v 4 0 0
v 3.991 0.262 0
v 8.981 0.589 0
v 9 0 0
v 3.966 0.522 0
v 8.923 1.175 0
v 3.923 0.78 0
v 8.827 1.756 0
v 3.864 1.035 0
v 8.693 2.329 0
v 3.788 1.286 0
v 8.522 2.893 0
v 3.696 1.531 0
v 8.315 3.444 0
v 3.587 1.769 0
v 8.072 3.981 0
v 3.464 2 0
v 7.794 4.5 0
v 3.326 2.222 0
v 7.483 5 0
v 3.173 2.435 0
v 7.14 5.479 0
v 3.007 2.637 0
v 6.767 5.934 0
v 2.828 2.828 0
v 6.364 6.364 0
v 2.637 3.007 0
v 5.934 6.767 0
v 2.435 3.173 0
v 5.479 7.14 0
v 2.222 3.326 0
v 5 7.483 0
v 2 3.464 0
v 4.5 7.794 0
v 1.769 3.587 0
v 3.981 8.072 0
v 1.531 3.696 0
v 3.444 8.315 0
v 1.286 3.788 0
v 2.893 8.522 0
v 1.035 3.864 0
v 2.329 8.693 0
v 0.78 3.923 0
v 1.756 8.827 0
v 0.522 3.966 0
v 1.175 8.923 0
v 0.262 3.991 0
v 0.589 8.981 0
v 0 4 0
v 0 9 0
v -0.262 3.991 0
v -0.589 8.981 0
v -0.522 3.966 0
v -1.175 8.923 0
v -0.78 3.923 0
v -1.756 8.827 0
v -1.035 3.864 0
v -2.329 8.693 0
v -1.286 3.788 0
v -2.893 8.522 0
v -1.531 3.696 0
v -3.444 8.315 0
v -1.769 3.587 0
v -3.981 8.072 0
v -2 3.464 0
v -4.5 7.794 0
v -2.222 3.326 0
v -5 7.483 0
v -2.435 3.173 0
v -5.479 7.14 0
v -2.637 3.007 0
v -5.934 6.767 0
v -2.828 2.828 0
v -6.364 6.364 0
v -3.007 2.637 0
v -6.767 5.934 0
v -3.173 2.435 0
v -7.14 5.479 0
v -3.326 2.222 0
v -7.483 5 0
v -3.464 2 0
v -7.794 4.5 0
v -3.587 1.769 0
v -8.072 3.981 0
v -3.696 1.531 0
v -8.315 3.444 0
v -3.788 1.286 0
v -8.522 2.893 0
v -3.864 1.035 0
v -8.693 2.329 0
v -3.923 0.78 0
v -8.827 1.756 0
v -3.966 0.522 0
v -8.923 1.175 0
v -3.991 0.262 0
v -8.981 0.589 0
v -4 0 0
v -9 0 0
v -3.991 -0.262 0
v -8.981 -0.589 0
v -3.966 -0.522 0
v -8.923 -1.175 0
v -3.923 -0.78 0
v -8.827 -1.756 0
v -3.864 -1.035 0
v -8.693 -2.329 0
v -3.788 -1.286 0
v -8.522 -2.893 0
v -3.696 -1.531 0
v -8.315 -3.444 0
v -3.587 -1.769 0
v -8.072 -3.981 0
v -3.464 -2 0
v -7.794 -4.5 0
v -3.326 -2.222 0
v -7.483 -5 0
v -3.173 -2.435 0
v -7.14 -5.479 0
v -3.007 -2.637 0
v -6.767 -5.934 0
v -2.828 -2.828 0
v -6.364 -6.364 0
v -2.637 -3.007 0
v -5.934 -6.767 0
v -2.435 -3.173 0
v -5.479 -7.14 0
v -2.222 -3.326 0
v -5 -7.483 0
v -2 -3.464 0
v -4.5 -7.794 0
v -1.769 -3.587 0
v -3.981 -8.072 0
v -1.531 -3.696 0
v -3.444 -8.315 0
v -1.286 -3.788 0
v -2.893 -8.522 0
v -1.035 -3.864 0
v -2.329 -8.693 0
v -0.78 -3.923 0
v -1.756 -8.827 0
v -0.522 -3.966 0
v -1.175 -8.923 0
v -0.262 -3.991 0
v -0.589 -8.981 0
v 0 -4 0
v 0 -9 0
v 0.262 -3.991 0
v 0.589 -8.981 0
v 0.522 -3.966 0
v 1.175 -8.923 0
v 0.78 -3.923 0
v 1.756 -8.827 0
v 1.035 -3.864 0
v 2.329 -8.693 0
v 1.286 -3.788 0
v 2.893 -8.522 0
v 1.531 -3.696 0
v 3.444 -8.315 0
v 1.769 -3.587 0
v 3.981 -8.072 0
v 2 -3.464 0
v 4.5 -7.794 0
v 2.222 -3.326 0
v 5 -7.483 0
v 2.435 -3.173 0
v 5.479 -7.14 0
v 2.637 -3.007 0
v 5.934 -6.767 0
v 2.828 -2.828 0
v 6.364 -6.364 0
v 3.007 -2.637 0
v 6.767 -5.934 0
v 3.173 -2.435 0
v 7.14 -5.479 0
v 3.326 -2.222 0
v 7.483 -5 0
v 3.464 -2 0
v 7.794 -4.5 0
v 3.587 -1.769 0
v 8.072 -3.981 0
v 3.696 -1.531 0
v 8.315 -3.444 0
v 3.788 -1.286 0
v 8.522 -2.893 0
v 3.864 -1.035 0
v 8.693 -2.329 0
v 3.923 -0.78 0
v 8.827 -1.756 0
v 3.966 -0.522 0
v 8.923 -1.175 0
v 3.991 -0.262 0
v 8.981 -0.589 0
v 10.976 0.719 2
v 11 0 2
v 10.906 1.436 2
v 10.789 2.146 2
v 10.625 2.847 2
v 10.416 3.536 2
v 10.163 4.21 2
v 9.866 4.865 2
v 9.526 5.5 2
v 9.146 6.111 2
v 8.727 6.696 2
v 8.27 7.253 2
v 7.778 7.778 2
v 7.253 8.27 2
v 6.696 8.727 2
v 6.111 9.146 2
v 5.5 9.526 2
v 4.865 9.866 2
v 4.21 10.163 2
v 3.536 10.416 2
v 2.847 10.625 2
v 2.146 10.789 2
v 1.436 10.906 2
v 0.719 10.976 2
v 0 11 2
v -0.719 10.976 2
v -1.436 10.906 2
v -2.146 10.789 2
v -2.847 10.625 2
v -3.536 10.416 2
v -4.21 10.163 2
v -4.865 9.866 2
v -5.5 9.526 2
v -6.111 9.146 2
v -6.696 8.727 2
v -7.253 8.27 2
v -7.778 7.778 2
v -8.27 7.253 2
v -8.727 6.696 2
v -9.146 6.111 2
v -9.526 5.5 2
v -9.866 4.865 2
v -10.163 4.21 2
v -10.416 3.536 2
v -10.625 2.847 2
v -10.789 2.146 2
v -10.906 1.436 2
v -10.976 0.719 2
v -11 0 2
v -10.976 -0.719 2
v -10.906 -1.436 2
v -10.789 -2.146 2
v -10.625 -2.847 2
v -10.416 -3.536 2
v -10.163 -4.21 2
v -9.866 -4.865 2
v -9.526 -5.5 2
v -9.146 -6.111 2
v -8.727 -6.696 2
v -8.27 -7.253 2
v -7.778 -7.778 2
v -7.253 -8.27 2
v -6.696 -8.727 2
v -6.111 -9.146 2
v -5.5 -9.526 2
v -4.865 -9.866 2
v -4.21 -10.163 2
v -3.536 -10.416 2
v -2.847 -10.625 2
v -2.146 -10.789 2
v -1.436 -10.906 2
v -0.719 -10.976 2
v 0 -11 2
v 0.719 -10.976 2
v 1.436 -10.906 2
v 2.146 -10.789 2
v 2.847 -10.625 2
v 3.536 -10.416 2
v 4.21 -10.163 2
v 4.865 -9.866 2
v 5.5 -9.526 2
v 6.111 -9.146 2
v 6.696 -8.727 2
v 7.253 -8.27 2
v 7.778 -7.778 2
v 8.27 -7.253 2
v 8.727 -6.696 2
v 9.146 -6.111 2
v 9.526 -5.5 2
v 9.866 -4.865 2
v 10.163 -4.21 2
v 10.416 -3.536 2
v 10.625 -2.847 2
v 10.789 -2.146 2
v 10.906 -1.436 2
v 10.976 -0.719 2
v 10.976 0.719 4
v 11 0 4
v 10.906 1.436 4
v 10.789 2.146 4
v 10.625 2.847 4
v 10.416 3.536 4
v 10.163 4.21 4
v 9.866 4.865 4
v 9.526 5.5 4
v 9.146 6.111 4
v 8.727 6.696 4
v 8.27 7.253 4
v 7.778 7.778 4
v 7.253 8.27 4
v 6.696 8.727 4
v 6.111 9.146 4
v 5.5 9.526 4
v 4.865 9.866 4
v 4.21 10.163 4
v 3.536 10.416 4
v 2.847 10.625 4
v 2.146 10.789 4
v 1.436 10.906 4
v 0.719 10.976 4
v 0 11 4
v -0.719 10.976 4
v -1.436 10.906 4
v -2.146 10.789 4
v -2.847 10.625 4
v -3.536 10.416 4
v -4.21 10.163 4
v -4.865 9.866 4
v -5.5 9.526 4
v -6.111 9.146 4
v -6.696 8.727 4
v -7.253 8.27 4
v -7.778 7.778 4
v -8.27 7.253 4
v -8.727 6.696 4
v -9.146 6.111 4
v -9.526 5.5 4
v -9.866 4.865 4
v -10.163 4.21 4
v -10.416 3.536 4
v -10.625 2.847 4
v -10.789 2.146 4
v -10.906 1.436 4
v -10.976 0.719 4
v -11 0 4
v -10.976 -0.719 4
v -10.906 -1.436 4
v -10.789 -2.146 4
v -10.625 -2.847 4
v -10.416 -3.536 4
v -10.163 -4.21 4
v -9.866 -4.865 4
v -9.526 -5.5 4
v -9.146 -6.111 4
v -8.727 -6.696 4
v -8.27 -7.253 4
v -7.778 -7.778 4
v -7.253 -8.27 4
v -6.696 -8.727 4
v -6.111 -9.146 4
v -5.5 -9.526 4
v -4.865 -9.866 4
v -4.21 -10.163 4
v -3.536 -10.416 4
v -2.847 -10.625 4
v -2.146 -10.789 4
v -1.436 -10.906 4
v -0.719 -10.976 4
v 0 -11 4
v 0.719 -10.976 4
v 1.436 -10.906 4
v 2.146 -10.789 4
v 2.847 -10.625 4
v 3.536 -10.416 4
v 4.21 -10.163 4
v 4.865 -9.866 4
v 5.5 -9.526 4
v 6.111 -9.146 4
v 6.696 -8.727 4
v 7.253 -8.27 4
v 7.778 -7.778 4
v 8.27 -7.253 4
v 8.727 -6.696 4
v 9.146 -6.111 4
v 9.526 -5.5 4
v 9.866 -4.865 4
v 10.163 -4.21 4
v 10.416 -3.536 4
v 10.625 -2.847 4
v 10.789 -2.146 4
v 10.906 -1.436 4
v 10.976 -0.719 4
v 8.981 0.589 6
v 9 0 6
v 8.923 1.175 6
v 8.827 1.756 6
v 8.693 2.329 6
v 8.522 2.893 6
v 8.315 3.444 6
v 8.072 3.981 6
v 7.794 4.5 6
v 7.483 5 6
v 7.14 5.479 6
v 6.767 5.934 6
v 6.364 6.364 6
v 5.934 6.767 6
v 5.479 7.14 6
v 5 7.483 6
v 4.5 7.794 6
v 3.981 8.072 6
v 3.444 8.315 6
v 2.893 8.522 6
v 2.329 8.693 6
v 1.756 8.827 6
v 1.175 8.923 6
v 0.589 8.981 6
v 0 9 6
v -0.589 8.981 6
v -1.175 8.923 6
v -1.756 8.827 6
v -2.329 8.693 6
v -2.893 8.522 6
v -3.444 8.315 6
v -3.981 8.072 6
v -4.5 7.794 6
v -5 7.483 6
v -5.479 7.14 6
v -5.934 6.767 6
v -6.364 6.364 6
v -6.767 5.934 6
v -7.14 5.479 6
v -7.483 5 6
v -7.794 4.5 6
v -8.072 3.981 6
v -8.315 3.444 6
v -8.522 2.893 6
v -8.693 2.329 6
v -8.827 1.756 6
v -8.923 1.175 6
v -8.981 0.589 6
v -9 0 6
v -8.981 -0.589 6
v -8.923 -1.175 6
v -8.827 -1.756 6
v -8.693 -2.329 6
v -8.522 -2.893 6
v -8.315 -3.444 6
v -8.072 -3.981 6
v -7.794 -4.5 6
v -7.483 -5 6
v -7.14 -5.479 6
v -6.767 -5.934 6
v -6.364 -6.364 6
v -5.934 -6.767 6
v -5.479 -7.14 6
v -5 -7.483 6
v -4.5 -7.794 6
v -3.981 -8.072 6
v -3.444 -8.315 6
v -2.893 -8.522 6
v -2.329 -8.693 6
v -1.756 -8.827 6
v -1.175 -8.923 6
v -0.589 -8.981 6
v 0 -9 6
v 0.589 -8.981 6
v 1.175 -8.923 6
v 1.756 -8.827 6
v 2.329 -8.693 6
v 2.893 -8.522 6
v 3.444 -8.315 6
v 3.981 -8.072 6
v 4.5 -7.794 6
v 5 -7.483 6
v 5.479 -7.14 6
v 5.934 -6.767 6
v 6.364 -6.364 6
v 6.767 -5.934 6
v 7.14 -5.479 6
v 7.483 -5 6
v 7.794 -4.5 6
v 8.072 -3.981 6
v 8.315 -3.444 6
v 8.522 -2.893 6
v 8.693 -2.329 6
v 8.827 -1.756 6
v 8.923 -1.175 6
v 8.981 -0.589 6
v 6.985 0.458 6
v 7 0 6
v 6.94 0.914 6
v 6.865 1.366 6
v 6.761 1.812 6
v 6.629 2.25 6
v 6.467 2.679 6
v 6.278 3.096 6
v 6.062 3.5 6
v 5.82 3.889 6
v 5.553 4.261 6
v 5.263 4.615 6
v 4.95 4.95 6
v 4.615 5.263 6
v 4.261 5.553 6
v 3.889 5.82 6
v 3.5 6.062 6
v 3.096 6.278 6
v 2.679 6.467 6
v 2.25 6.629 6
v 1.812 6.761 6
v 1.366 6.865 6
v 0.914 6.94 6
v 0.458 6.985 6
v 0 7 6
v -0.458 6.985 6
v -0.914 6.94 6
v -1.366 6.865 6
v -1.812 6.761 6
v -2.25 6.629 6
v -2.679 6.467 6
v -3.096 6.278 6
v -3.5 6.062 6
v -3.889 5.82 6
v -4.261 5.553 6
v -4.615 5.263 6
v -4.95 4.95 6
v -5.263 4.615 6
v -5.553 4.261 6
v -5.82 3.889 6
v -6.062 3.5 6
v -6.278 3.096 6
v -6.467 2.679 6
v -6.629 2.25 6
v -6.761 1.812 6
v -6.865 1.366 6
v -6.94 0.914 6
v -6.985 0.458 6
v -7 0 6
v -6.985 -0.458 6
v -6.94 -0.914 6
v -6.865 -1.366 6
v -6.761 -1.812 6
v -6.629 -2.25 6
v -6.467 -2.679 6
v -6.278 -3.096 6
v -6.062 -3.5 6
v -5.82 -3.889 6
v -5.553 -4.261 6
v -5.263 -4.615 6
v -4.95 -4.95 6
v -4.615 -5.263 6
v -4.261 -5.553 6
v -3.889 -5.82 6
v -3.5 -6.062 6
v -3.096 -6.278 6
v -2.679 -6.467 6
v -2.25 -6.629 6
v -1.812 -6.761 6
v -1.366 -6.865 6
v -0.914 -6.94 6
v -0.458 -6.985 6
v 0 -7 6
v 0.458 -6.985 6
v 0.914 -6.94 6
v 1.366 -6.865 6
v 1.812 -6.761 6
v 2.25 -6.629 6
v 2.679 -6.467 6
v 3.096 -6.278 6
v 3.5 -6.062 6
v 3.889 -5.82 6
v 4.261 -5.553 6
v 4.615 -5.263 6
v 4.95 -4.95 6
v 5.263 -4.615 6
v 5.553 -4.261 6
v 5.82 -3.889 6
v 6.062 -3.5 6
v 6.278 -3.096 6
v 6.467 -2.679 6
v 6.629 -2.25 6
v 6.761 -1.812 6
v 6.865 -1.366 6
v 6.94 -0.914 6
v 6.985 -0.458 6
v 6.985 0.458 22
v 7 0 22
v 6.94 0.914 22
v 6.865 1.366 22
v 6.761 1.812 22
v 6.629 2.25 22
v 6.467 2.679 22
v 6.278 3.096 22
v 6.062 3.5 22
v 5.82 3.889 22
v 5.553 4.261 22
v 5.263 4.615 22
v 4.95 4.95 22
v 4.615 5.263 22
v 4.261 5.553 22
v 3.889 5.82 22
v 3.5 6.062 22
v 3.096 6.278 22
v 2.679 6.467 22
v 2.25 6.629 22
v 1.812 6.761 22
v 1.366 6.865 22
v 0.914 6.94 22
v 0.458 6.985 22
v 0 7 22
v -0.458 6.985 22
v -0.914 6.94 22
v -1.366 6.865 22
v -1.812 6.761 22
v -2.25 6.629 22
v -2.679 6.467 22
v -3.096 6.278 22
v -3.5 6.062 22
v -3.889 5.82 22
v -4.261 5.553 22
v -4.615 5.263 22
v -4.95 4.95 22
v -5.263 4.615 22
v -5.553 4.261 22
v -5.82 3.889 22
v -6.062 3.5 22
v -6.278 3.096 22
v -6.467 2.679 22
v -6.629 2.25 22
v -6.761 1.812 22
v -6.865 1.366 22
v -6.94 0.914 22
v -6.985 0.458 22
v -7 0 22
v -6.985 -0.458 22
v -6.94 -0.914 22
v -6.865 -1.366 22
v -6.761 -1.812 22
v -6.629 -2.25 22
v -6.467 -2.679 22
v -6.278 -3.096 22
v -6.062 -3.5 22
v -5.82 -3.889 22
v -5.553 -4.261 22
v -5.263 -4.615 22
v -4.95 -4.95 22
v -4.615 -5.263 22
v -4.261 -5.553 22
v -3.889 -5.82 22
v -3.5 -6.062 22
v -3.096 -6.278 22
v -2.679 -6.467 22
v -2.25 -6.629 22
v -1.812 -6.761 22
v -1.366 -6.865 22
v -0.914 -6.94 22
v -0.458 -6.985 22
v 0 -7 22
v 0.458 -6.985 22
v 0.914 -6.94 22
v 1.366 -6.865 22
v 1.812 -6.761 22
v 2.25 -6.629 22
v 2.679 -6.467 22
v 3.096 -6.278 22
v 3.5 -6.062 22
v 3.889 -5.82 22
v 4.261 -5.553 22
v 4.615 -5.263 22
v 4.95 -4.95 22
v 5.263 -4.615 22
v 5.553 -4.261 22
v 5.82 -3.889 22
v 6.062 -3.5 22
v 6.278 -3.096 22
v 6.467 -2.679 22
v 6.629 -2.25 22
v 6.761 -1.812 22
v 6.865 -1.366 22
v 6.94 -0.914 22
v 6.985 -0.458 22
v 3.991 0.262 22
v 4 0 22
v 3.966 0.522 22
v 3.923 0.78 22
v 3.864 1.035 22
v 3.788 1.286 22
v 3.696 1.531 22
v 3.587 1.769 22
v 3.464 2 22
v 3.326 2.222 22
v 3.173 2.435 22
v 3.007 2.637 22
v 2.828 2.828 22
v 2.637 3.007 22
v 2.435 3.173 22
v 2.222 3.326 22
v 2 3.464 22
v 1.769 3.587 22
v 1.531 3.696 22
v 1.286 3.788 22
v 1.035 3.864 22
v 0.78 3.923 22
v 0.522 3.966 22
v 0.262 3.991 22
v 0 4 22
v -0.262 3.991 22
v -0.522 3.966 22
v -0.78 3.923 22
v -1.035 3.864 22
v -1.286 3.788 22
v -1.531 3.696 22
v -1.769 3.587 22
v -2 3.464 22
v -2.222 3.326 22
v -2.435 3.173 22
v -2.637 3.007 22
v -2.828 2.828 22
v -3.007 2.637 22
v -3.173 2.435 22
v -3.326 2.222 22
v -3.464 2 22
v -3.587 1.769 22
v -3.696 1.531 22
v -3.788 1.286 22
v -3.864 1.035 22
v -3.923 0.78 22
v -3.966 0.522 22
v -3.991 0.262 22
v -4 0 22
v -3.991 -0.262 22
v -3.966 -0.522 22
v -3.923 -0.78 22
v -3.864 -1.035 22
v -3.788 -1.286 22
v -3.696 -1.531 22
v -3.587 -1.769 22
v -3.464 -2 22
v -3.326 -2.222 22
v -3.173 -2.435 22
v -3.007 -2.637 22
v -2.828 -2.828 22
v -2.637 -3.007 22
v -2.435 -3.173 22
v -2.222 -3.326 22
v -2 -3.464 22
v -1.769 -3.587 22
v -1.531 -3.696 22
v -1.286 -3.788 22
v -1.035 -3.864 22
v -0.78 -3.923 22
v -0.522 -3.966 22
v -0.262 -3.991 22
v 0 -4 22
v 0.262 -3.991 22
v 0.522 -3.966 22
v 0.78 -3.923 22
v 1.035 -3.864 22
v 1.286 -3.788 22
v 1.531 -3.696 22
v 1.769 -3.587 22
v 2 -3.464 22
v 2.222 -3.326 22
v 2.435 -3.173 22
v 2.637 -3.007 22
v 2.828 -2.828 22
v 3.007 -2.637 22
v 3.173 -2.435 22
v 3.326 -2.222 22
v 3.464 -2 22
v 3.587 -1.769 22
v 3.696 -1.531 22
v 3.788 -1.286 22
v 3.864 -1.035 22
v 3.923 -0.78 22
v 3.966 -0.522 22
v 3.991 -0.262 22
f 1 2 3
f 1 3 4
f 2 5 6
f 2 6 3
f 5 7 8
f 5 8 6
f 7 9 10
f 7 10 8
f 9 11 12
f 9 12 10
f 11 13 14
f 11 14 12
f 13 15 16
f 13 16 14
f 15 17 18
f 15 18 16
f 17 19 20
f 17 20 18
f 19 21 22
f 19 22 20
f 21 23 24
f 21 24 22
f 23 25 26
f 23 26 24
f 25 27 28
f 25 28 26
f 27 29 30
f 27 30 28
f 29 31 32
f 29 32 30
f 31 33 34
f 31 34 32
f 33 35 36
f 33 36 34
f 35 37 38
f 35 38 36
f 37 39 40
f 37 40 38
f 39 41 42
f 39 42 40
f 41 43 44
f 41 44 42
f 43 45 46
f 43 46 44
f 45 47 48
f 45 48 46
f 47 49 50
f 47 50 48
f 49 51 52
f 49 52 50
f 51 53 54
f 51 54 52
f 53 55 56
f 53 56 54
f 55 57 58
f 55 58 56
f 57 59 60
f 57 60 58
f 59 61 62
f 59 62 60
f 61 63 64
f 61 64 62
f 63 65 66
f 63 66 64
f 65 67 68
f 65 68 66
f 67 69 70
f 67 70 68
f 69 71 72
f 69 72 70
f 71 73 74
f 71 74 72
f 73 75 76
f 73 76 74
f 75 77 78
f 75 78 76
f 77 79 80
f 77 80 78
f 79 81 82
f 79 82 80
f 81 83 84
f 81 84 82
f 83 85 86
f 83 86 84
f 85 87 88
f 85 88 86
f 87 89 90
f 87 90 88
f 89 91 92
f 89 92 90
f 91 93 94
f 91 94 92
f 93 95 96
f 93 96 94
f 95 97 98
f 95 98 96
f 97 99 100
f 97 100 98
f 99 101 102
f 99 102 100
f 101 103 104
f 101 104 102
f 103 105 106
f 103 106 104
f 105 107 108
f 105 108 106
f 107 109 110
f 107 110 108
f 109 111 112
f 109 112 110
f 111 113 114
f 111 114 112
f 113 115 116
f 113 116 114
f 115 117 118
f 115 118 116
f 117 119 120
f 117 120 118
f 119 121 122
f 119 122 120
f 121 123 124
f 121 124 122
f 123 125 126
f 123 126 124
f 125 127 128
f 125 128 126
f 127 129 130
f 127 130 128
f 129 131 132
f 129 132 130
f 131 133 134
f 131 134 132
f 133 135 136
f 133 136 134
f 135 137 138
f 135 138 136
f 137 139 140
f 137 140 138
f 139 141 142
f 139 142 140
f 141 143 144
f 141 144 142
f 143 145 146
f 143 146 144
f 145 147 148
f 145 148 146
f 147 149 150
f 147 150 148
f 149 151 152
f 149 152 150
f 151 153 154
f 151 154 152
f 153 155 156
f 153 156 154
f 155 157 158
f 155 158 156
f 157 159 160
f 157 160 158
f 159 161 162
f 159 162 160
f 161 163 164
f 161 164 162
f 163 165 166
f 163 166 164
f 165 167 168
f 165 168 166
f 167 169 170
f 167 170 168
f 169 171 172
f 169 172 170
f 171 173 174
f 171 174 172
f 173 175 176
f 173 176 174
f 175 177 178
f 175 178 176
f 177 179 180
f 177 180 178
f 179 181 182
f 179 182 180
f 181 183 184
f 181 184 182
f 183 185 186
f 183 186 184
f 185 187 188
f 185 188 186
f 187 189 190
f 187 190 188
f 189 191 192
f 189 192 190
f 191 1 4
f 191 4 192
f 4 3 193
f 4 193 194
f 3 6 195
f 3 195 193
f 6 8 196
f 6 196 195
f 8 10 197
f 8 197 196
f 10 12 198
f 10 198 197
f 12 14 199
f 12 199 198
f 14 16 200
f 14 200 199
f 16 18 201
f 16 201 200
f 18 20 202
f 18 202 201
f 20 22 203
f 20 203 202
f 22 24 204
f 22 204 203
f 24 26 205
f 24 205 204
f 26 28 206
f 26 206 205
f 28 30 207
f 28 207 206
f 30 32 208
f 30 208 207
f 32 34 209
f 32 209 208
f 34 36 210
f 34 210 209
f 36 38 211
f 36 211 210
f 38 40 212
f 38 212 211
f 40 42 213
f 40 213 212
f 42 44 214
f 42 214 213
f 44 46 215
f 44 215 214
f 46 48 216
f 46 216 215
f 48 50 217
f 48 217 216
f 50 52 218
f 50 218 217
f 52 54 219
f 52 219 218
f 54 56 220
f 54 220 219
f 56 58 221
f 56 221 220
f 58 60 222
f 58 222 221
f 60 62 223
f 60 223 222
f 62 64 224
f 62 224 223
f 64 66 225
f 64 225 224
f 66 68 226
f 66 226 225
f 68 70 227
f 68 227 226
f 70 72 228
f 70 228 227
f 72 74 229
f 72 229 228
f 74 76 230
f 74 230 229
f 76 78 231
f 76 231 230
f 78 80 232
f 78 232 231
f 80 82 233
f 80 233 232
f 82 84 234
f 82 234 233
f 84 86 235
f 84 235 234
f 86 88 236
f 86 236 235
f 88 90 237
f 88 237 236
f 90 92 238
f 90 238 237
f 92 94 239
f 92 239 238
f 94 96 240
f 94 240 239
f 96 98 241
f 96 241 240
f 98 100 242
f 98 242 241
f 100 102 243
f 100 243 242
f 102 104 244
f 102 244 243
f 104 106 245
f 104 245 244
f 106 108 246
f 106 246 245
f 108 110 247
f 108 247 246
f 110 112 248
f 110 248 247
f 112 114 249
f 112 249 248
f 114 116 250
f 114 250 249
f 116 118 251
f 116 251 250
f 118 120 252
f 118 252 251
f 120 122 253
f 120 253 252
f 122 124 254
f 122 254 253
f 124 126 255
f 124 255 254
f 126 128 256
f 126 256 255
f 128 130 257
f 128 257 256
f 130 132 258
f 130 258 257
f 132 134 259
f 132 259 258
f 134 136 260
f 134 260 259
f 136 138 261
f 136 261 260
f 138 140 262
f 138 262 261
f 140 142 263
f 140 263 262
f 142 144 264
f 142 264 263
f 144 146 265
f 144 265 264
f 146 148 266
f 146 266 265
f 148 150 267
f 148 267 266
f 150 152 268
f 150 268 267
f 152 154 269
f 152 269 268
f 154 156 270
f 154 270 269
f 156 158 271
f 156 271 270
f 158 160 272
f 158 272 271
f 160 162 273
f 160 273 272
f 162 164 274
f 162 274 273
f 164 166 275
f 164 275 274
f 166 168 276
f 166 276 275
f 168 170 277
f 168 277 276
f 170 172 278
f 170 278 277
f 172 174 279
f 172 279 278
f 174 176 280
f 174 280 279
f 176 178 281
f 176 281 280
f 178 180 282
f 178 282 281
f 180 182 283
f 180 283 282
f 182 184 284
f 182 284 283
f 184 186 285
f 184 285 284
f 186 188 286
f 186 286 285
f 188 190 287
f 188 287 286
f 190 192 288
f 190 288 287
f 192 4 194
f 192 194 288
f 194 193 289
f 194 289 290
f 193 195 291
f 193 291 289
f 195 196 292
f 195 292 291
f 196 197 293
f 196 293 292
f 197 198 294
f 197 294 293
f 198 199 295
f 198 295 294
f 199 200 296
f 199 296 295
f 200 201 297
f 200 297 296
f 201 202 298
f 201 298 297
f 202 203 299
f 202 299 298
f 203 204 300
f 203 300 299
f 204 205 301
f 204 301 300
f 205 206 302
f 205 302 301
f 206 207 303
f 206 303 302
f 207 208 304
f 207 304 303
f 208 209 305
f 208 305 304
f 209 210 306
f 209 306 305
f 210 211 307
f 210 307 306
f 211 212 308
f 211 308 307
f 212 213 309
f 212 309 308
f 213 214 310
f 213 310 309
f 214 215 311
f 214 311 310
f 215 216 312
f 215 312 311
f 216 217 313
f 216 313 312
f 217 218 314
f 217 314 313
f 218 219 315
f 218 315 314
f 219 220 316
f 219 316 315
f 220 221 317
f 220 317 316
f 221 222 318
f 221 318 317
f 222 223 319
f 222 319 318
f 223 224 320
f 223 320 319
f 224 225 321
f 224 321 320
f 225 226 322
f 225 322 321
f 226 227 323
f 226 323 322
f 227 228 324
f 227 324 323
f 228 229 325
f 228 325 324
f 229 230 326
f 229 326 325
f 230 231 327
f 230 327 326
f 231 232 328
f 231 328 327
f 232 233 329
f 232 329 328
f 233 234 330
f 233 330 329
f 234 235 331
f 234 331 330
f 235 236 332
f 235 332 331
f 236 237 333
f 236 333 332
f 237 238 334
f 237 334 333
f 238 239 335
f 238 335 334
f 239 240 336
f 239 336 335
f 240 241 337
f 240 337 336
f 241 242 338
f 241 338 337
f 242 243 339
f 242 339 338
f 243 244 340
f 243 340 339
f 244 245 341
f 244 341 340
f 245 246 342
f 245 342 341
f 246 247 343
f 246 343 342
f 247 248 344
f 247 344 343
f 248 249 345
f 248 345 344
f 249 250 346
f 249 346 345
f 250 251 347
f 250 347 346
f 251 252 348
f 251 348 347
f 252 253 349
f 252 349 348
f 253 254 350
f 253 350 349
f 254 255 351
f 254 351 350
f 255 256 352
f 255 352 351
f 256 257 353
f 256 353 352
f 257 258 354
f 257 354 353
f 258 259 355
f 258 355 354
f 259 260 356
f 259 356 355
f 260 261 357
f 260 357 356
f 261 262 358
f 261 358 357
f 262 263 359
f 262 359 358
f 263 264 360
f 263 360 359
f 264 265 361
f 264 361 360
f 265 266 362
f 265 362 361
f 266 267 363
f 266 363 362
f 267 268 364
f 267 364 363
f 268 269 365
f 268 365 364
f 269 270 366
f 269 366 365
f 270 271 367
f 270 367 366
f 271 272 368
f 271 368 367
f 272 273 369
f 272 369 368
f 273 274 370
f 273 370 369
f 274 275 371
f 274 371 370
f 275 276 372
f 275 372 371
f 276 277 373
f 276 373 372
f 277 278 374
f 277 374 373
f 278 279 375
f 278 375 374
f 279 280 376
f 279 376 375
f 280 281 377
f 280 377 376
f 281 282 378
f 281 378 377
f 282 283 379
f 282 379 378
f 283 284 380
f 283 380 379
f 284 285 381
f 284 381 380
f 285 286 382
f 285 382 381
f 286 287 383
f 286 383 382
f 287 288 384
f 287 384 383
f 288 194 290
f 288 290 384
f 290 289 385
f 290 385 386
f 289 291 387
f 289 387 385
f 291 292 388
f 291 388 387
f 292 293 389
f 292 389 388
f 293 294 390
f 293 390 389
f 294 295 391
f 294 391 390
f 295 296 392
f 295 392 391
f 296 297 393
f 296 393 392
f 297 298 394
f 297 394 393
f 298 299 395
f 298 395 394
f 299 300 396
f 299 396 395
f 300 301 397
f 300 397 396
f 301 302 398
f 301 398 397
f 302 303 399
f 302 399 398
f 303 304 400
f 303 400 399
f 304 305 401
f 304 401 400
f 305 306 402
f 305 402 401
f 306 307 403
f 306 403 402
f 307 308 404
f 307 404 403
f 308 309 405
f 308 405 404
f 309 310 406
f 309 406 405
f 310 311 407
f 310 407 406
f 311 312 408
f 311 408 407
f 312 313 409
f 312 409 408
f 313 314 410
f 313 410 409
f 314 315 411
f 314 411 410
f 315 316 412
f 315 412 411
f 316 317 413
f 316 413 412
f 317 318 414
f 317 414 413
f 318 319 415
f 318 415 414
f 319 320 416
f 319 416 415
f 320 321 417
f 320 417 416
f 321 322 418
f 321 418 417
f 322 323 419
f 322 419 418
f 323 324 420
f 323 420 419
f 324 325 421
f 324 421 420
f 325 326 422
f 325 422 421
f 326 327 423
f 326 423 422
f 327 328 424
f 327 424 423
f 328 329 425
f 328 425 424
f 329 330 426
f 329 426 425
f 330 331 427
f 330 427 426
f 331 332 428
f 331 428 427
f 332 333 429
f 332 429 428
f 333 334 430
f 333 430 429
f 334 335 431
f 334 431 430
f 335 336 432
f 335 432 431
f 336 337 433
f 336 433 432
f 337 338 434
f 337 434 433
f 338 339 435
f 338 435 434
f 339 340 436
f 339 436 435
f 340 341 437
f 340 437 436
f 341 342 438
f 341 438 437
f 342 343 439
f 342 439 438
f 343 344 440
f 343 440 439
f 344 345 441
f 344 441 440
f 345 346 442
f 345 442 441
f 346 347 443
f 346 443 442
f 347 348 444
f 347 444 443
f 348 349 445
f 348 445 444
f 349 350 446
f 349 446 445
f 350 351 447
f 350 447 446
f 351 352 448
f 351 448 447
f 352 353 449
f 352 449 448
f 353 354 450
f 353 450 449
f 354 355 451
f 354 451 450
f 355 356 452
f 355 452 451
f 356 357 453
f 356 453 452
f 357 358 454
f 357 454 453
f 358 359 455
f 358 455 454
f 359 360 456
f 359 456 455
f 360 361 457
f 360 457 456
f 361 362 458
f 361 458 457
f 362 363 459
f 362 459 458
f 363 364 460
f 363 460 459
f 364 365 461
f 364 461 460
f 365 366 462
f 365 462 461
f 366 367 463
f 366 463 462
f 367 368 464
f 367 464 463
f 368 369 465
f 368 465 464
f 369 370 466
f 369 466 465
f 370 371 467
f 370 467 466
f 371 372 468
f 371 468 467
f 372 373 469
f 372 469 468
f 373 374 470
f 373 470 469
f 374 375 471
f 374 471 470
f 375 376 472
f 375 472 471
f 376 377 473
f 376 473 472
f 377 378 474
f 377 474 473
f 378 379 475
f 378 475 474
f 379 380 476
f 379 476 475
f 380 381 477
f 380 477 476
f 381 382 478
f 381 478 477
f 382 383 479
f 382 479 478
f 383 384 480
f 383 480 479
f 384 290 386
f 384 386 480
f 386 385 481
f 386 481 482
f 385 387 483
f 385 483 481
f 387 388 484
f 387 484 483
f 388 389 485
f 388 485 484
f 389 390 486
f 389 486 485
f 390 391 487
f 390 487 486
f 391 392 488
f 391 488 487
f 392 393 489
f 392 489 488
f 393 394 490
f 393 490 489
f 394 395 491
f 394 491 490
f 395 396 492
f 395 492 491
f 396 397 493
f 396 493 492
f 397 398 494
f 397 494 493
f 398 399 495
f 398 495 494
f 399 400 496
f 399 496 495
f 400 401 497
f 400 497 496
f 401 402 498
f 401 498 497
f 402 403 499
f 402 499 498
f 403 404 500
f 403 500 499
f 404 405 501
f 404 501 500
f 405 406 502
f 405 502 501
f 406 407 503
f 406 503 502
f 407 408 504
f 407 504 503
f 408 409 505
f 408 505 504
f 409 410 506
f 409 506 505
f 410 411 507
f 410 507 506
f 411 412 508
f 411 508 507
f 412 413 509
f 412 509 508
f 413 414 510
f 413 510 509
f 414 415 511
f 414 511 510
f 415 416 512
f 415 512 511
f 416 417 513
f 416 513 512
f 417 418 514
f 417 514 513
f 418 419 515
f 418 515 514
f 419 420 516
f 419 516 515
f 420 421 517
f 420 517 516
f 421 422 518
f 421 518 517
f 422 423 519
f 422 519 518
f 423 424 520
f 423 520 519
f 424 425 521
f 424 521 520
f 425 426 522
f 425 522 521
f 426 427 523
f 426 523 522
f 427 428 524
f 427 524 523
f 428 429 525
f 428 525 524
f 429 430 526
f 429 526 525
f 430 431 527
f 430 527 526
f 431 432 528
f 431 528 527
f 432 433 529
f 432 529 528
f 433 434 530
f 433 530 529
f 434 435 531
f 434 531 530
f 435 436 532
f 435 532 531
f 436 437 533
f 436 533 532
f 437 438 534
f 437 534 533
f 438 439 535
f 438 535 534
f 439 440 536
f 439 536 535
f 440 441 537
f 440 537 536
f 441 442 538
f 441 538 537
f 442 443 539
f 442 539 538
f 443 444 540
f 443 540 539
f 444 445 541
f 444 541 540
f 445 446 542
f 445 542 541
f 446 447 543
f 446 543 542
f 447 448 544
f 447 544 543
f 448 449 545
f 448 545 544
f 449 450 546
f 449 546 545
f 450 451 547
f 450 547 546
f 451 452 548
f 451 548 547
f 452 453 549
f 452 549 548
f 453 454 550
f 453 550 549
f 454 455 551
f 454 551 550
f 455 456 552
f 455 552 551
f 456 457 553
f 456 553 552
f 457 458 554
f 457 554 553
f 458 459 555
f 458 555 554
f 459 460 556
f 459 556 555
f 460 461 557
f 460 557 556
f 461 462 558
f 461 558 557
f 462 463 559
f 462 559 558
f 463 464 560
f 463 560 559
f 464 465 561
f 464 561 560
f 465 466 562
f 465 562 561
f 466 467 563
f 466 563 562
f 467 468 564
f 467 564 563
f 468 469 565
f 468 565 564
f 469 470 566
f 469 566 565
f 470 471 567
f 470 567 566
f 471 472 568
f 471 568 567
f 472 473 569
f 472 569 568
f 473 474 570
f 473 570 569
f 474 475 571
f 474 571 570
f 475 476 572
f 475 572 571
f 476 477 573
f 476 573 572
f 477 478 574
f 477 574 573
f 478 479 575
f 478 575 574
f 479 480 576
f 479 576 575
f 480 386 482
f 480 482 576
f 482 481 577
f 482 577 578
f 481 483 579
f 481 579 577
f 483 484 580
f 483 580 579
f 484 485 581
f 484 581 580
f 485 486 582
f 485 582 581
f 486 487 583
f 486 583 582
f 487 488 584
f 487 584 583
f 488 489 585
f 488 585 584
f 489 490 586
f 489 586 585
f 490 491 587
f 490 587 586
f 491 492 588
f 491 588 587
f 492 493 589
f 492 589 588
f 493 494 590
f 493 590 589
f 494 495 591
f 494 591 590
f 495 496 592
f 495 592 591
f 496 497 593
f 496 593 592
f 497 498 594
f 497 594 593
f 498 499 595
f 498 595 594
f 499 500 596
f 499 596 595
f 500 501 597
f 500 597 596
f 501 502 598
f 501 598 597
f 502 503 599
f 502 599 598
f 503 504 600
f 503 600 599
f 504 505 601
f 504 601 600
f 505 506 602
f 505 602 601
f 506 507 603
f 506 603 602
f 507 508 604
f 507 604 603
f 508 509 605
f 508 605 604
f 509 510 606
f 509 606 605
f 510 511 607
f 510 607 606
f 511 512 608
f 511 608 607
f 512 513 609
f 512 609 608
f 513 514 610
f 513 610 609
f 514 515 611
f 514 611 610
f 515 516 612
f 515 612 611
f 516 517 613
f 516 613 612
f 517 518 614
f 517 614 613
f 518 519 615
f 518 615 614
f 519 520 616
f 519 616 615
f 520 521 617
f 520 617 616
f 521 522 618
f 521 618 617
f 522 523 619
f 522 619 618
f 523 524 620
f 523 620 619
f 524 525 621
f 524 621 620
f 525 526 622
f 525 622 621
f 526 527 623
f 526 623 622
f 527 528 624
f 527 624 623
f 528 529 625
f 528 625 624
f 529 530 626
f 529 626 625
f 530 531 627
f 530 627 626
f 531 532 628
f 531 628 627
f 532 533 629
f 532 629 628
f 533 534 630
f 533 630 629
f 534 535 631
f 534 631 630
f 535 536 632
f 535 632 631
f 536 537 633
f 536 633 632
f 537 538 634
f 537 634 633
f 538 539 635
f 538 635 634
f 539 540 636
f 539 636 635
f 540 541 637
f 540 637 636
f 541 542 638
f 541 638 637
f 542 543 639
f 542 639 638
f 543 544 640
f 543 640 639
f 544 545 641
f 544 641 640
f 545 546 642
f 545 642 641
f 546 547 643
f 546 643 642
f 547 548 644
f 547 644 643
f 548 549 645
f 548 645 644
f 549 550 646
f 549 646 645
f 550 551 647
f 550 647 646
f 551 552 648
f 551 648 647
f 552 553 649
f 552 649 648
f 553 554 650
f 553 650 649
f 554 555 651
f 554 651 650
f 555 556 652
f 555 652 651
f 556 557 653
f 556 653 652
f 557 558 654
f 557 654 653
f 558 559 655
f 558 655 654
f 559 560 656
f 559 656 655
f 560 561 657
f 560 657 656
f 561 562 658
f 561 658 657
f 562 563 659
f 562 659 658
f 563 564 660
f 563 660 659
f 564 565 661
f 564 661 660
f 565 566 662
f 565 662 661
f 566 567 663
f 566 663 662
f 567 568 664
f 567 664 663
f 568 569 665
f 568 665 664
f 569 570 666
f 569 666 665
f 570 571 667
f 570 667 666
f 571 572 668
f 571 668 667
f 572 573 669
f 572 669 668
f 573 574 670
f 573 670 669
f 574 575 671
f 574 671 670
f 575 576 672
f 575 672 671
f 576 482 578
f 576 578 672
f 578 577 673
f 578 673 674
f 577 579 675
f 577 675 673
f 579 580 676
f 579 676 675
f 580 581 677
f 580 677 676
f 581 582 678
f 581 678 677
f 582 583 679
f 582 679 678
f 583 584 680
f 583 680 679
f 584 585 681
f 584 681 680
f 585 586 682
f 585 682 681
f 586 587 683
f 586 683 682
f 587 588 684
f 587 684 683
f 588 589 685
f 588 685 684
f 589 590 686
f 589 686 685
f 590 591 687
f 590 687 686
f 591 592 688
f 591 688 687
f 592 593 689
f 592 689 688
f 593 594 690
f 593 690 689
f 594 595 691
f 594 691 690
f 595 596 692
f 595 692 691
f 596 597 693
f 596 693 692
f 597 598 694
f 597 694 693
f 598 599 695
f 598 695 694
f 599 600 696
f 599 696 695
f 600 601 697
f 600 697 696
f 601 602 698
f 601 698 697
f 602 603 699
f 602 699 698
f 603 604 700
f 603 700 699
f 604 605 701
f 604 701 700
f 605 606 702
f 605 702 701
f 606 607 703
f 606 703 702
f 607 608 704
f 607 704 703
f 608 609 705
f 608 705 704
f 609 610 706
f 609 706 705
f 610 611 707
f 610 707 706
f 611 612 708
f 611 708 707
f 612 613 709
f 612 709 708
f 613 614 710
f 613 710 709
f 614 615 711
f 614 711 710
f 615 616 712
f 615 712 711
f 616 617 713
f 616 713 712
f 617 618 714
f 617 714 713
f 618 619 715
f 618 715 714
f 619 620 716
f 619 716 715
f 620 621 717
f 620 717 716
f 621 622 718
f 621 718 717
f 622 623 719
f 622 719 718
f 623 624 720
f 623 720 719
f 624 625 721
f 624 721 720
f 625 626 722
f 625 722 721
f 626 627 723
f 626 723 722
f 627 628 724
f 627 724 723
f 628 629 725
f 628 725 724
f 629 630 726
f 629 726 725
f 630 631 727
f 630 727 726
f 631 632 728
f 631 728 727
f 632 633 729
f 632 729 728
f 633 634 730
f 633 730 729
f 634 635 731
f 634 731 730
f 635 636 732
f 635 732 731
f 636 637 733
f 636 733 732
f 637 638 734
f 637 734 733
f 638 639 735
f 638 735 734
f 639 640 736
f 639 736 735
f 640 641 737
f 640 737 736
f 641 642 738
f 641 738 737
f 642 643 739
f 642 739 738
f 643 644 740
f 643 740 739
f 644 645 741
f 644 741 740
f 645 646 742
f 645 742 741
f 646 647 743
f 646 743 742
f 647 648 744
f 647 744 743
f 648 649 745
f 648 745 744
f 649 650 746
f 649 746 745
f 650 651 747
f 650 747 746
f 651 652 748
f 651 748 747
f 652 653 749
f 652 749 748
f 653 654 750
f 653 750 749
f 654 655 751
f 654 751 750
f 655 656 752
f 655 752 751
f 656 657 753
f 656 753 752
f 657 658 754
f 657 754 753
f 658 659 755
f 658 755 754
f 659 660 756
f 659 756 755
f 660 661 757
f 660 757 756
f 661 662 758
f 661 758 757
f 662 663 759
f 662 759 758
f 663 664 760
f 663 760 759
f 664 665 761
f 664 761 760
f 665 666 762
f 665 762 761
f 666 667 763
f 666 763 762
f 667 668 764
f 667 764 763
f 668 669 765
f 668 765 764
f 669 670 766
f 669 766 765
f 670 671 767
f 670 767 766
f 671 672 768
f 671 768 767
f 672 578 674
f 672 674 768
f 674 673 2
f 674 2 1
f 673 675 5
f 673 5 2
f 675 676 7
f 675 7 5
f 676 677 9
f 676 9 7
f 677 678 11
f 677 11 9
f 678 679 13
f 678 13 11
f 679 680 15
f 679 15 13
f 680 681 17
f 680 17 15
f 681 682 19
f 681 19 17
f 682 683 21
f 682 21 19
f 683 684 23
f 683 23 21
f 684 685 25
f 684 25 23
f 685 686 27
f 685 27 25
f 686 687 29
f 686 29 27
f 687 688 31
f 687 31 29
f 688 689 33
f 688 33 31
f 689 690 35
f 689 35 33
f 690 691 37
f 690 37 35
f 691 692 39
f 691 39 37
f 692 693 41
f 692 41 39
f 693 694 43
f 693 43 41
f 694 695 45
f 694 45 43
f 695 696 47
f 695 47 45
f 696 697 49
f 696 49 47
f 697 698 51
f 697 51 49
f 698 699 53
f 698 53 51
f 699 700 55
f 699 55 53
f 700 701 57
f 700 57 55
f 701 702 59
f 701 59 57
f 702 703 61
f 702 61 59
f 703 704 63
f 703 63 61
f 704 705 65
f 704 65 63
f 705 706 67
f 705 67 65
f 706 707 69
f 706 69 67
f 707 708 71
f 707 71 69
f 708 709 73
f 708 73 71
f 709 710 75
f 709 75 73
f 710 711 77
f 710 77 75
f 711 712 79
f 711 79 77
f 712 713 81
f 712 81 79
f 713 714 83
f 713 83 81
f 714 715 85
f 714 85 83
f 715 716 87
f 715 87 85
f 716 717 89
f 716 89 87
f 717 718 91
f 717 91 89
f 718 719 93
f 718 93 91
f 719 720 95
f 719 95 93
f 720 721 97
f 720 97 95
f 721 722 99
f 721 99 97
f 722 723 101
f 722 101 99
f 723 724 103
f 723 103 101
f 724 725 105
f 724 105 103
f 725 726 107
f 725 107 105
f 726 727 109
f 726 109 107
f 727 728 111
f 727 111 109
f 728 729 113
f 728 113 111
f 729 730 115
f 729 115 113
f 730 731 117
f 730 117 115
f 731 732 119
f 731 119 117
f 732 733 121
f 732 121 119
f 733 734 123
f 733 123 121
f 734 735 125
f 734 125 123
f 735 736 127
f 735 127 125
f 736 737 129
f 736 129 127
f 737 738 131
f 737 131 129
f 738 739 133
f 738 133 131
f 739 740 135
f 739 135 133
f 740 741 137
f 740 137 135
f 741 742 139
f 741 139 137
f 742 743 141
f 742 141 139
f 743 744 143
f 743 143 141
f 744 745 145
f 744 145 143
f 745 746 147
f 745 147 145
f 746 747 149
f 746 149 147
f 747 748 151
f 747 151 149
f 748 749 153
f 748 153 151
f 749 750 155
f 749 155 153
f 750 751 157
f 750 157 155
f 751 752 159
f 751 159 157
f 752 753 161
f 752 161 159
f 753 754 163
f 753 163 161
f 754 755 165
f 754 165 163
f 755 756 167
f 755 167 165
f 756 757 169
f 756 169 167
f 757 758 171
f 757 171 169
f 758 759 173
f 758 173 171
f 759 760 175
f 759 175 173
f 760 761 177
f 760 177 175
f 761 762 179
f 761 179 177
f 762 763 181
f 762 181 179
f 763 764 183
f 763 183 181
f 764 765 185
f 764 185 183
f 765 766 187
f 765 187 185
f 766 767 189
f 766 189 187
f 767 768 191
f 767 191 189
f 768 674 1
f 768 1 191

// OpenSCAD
// Original MechIntel educational model. CC0-1.0. Units: mm.
// Not a standardized or load-rated component.
$fn=96;
// Section points: [radius, height], mm. Edit to change the profile.
section=[[4, 0], [9, 0], [11, 2], [11, 4], [9, 6], [7, 6], [7, 22], [4, 22]];
rotate_extrude($fn=96) polygon(points=section);
